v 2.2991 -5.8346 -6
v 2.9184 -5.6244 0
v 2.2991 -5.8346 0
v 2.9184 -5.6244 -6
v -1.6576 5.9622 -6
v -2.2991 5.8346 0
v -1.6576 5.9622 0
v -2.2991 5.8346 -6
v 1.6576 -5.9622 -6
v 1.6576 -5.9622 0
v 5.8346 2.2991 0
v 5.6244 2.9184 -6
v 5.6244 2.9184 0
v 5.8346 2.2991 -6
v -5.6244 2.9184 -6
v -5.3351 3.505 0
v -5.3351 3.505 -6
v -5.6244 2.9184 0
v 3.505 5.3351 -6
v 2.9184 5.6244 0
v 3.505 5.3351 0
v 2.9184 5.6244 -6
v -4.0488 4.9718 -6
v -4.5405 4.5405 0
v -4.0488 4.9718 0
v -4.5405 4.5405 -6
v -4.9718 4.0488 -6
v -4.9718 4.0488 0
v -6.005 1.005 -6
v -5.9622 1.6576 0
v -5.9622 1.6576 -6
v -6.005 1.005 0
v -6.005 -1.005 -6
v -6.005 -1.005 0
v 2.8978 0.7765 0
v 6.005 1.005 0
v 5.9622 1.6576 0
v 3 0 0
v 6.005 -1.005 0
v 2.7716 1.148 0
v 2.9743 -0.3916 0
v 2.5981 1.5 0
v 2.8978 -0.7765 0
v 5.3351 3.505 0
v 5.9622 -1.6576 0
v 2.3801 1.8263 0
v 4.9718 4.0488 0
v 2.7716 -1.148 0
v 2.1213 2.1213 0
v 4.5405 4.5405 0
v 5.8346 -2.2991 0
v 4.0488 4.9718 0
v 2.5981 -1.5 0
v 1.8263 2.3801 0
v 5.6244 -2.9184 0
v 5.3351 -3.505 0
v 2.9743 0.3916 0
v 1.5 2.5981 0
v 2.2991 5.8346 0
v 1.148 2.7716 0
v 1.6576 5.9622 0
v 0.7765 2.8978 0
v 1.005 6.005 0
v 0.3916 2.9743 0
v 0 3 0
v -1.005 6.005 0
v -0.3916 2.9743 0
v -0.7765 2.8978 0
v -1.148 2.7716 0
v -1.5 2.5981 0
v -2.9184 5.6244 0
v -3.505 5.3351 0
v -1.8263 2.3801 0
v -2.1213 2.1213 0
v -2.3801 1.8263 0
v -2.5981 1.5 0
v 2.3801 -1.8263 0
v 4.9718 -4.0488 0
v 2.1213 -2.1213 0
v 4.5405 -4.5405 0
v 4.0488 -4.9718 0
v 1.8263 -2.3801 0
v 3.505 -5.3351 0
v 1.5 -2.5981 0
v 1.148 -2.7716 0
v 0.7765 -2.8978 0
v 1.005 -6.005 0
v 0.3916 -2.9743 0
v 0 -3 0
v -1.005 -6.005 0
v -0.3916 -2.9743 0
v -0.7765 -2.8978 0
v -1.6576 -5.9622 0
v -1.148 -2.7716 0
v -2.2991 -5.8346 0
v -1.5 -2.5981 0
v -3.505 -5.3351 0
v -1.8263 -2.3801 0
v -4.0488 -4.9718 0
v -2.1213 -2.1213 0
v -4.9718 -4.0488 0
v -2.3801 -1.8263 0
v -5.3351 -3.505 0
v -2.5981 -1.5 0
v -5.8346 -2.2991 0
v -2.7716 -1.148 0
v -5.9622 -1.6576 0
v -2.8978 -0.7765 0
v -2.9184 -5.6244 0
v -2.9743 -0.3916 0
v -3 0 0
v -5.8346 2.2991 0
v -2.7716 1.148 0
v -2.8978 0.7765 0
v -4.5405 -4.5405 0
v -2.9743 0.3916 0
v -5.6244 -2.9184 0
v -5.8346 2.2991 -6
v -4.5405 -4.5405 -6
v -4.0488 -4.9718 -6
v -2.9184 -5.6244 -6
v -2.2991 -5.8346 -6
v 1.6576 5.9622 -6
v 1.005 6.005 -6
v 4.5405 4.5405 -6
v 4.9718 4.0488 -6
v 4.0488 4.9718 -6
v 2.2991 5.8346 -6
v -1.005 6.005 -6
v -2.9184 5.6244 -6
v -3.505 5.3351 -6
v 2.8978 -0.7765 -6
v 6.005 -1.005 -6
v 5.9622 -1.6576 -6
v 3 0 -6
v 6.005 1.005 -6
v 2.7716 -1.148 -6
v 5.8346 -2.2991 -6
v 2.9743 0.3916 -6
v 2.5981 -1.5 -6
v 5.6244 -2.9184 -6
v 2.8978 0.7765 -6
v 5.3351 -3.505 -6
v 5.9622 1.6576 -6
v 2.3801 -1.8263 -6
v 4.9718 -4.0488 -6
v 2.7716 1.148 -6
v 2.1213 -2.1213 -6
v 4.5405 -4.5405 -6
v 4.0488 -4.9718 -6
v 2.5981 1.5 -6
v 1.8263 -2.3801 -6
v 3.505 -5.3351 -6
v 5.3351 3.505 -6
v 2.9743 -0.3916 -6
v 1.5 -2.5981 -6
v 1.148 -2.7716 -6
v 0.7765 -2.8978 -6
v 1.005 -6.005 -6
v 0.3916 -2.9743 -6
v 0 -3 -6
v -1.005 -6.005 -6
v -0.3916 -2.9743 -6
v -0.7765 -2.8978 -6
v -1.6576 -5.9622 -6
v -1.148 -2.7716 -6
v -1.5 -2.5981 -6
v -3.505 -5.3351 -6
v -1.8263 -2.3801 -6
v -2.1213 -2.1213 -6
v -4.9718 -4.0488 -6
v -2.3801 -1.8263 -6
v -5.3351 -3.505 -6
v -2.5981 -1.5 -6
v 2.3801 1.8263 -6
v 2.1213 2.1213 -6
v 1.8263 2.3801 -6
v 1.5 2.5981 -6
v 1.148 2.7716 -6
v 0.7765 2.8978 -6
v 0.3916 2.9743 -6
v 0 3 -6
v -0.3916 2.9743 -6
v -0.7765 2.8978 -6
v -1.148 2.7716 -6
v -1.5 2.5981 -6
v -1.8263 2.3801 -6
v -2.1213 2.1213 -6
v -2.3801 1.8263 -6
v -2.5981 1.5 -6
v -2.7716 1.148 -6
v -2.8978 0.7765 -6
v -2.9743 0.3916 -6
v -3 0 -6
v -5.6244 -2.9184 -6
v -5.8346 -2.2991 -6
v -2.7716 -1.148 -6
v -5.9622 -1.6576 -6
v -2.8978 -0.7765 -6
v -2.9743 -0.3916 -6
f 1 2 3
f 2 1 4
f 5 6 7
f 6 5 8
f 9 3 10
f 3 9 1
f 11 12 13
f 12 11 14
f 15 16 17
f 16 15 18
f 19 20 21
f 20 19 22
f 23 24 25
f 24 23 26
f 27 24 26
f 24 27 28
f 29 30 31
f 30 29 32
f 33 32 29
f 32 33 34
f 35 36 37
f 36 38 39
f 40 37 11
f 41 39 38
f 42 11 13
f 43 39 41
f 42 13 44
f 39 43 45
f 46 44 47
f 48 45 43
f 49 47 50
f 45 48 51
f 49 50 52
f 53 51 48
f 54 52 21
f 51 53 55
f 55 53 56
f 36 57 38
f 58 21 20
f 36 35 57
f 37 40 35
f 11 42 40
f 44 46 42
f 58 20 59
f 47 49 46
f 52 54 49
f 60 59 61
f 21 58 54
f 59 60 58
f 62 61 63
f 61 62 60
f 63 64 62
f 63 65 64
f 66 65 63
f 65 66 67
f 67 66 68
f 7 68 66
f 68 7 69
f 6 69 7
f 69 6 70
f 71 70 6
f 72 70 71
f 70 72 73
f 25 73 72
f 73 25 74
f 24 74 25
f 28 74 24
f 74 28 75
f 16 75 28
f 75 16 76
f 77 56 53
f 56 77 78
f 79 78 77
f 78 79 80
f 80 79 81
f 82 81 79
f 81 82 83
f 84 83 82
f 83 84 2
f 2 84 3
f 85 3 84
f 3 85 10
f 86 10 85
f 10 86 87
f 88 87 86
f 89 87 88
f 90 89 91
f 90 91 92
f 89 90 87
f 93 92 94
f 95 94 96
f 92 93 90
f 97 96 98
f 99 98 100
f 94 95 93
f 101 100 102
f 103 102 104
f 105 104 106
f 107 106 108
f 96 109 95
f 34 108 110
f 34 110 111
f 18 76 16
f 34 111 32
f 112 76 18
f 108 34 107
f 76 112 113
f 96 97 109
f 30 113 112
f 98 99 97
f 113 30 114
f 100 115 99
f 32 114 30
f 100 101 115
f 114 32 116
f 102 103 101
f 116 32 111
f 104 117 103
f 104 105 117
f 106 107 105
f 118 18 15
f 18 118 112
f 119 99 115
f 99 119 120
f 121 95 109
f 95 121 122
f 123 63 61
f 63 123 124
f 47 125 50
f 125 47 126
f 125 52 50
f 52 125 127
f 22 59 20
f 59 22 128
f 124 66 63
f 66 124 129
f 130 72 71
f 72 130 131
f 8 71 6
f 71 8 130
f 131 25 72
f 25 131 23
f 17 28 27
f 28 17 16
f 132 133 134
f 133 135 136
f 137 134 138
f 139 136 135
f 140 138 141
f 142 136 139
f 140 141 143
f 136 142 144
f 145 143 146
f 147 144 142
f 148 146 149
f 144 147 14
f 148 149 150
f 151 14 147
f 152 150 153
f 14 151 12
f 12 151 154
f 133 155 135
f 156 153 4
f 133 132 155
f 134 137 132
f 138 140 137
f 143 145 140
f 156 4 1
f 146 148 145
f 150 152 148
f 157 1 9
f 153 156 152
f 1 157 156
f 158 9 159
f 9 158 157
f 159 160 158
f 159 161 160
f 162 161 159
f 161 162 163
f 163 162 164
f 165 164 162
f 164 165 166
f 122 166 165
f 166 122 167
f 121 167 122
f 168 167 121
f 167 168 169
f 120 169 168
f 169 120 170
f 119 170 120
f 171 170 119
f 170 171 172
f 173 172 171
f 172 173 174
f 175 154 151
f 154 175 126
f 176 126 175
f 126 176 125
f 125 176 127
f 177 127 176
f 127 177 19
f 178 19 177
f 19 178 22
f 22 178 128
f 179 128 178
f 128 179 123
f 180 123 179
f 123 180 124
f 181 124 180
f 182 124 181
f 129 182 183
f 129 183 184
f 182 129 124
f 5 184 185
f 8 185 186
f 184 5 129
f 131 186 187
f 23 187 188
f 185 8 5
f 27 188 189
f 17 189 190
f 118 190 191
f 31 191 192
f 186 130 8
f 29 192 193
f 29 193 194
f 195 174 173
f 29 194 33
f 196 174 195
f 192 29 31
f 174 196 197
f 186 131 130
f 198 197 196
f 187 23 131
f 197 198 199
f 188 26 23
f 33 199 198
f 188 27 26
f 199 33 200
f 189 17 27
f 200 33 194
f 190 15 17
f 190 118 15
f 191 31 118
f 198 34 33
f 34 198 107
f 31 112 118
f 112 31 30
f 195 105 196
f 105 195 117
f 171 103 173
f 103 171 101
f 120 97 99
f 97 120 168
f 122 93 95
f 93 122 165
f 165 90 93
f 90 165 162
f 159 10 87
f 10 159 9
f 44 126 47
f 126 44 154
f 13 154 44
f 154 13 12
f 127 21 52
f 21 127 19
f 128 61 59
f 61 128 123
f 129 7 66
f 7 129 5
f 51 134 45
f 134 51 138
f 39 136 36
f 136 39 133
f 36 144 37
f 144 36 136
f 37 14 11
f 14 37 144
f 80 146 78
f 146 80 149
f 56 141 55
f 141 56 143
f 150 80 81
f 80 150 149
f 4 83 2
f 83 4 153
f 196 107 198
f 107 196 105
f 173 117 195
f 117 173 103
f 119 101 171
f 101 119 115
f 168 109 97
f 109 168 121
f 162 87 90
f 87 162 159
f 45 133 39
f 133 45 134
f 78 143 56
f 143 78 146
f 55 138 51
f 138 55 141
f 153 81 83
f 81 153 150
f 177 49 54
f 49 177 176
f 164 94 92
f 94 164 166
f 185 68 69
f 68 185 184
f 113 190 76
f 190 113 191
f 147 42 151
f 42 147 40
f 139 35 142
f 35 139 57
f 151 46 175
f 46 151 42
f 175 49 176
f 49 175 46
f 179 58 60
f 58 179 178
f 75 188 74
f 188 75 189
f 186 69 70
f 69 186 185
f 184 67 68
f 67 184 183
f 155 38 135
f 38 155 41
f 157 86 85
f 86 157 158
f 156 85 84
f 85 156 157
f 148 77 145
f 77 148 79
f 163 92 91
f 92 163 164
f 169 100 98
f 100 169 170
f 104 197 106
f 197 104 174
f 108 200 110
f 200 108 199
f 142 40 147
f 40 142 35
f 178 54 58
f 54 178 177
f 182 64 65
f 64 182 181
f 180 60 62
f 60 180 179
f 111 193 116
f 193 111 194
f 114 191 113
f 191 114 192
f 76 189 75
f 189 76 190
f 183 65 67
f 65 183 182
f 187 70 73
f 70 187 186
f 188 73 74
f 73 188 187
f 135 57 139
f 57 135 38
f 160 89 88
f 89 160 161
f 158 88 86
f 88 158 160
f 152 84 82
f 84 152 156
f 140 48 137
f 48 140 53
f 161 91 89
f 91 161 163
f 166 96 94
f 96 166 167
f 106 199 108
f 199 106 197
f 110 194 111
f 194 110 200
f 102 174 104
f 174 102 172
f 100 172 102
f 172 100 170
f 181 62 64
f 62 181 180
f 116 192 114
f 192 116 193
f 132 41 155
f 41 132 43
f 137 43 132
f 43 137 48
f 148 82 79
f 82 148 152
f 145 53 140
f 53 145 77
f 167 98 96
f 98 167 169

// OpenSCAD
$fn = 48;


difference() {
	union() {
		translate(v = [0, 0, 0]) {
			difference() {
				union() {
					color(alpha = 1.0000000000, c = "Gold") {
						translate(v = [0, 0, 0]) {
							rotate(a = [0, 0, 0]) {
								translate(v = [0, 0, -6]) {
									linear_extrude(height = 6) {
										offset(r = 5) {
											square(center = true, size = [2.0100000000, 2.0100000000]);
										}
									}
								}
							}
						}
					}
				}
				union() {
					color(alpha = 1.0000000000, c = "Gold") {
						translate(v = [0.0000000000, 0.0000000000, 0]) {
							rotate(a = [0, 0, 0]) {
								translate(v = [0, 0, -250]) {
									cylinder(h = 500, r = 3.0000000000);
								}
							}
						}
					}
				}
			}
		}
	}
	union();
}
